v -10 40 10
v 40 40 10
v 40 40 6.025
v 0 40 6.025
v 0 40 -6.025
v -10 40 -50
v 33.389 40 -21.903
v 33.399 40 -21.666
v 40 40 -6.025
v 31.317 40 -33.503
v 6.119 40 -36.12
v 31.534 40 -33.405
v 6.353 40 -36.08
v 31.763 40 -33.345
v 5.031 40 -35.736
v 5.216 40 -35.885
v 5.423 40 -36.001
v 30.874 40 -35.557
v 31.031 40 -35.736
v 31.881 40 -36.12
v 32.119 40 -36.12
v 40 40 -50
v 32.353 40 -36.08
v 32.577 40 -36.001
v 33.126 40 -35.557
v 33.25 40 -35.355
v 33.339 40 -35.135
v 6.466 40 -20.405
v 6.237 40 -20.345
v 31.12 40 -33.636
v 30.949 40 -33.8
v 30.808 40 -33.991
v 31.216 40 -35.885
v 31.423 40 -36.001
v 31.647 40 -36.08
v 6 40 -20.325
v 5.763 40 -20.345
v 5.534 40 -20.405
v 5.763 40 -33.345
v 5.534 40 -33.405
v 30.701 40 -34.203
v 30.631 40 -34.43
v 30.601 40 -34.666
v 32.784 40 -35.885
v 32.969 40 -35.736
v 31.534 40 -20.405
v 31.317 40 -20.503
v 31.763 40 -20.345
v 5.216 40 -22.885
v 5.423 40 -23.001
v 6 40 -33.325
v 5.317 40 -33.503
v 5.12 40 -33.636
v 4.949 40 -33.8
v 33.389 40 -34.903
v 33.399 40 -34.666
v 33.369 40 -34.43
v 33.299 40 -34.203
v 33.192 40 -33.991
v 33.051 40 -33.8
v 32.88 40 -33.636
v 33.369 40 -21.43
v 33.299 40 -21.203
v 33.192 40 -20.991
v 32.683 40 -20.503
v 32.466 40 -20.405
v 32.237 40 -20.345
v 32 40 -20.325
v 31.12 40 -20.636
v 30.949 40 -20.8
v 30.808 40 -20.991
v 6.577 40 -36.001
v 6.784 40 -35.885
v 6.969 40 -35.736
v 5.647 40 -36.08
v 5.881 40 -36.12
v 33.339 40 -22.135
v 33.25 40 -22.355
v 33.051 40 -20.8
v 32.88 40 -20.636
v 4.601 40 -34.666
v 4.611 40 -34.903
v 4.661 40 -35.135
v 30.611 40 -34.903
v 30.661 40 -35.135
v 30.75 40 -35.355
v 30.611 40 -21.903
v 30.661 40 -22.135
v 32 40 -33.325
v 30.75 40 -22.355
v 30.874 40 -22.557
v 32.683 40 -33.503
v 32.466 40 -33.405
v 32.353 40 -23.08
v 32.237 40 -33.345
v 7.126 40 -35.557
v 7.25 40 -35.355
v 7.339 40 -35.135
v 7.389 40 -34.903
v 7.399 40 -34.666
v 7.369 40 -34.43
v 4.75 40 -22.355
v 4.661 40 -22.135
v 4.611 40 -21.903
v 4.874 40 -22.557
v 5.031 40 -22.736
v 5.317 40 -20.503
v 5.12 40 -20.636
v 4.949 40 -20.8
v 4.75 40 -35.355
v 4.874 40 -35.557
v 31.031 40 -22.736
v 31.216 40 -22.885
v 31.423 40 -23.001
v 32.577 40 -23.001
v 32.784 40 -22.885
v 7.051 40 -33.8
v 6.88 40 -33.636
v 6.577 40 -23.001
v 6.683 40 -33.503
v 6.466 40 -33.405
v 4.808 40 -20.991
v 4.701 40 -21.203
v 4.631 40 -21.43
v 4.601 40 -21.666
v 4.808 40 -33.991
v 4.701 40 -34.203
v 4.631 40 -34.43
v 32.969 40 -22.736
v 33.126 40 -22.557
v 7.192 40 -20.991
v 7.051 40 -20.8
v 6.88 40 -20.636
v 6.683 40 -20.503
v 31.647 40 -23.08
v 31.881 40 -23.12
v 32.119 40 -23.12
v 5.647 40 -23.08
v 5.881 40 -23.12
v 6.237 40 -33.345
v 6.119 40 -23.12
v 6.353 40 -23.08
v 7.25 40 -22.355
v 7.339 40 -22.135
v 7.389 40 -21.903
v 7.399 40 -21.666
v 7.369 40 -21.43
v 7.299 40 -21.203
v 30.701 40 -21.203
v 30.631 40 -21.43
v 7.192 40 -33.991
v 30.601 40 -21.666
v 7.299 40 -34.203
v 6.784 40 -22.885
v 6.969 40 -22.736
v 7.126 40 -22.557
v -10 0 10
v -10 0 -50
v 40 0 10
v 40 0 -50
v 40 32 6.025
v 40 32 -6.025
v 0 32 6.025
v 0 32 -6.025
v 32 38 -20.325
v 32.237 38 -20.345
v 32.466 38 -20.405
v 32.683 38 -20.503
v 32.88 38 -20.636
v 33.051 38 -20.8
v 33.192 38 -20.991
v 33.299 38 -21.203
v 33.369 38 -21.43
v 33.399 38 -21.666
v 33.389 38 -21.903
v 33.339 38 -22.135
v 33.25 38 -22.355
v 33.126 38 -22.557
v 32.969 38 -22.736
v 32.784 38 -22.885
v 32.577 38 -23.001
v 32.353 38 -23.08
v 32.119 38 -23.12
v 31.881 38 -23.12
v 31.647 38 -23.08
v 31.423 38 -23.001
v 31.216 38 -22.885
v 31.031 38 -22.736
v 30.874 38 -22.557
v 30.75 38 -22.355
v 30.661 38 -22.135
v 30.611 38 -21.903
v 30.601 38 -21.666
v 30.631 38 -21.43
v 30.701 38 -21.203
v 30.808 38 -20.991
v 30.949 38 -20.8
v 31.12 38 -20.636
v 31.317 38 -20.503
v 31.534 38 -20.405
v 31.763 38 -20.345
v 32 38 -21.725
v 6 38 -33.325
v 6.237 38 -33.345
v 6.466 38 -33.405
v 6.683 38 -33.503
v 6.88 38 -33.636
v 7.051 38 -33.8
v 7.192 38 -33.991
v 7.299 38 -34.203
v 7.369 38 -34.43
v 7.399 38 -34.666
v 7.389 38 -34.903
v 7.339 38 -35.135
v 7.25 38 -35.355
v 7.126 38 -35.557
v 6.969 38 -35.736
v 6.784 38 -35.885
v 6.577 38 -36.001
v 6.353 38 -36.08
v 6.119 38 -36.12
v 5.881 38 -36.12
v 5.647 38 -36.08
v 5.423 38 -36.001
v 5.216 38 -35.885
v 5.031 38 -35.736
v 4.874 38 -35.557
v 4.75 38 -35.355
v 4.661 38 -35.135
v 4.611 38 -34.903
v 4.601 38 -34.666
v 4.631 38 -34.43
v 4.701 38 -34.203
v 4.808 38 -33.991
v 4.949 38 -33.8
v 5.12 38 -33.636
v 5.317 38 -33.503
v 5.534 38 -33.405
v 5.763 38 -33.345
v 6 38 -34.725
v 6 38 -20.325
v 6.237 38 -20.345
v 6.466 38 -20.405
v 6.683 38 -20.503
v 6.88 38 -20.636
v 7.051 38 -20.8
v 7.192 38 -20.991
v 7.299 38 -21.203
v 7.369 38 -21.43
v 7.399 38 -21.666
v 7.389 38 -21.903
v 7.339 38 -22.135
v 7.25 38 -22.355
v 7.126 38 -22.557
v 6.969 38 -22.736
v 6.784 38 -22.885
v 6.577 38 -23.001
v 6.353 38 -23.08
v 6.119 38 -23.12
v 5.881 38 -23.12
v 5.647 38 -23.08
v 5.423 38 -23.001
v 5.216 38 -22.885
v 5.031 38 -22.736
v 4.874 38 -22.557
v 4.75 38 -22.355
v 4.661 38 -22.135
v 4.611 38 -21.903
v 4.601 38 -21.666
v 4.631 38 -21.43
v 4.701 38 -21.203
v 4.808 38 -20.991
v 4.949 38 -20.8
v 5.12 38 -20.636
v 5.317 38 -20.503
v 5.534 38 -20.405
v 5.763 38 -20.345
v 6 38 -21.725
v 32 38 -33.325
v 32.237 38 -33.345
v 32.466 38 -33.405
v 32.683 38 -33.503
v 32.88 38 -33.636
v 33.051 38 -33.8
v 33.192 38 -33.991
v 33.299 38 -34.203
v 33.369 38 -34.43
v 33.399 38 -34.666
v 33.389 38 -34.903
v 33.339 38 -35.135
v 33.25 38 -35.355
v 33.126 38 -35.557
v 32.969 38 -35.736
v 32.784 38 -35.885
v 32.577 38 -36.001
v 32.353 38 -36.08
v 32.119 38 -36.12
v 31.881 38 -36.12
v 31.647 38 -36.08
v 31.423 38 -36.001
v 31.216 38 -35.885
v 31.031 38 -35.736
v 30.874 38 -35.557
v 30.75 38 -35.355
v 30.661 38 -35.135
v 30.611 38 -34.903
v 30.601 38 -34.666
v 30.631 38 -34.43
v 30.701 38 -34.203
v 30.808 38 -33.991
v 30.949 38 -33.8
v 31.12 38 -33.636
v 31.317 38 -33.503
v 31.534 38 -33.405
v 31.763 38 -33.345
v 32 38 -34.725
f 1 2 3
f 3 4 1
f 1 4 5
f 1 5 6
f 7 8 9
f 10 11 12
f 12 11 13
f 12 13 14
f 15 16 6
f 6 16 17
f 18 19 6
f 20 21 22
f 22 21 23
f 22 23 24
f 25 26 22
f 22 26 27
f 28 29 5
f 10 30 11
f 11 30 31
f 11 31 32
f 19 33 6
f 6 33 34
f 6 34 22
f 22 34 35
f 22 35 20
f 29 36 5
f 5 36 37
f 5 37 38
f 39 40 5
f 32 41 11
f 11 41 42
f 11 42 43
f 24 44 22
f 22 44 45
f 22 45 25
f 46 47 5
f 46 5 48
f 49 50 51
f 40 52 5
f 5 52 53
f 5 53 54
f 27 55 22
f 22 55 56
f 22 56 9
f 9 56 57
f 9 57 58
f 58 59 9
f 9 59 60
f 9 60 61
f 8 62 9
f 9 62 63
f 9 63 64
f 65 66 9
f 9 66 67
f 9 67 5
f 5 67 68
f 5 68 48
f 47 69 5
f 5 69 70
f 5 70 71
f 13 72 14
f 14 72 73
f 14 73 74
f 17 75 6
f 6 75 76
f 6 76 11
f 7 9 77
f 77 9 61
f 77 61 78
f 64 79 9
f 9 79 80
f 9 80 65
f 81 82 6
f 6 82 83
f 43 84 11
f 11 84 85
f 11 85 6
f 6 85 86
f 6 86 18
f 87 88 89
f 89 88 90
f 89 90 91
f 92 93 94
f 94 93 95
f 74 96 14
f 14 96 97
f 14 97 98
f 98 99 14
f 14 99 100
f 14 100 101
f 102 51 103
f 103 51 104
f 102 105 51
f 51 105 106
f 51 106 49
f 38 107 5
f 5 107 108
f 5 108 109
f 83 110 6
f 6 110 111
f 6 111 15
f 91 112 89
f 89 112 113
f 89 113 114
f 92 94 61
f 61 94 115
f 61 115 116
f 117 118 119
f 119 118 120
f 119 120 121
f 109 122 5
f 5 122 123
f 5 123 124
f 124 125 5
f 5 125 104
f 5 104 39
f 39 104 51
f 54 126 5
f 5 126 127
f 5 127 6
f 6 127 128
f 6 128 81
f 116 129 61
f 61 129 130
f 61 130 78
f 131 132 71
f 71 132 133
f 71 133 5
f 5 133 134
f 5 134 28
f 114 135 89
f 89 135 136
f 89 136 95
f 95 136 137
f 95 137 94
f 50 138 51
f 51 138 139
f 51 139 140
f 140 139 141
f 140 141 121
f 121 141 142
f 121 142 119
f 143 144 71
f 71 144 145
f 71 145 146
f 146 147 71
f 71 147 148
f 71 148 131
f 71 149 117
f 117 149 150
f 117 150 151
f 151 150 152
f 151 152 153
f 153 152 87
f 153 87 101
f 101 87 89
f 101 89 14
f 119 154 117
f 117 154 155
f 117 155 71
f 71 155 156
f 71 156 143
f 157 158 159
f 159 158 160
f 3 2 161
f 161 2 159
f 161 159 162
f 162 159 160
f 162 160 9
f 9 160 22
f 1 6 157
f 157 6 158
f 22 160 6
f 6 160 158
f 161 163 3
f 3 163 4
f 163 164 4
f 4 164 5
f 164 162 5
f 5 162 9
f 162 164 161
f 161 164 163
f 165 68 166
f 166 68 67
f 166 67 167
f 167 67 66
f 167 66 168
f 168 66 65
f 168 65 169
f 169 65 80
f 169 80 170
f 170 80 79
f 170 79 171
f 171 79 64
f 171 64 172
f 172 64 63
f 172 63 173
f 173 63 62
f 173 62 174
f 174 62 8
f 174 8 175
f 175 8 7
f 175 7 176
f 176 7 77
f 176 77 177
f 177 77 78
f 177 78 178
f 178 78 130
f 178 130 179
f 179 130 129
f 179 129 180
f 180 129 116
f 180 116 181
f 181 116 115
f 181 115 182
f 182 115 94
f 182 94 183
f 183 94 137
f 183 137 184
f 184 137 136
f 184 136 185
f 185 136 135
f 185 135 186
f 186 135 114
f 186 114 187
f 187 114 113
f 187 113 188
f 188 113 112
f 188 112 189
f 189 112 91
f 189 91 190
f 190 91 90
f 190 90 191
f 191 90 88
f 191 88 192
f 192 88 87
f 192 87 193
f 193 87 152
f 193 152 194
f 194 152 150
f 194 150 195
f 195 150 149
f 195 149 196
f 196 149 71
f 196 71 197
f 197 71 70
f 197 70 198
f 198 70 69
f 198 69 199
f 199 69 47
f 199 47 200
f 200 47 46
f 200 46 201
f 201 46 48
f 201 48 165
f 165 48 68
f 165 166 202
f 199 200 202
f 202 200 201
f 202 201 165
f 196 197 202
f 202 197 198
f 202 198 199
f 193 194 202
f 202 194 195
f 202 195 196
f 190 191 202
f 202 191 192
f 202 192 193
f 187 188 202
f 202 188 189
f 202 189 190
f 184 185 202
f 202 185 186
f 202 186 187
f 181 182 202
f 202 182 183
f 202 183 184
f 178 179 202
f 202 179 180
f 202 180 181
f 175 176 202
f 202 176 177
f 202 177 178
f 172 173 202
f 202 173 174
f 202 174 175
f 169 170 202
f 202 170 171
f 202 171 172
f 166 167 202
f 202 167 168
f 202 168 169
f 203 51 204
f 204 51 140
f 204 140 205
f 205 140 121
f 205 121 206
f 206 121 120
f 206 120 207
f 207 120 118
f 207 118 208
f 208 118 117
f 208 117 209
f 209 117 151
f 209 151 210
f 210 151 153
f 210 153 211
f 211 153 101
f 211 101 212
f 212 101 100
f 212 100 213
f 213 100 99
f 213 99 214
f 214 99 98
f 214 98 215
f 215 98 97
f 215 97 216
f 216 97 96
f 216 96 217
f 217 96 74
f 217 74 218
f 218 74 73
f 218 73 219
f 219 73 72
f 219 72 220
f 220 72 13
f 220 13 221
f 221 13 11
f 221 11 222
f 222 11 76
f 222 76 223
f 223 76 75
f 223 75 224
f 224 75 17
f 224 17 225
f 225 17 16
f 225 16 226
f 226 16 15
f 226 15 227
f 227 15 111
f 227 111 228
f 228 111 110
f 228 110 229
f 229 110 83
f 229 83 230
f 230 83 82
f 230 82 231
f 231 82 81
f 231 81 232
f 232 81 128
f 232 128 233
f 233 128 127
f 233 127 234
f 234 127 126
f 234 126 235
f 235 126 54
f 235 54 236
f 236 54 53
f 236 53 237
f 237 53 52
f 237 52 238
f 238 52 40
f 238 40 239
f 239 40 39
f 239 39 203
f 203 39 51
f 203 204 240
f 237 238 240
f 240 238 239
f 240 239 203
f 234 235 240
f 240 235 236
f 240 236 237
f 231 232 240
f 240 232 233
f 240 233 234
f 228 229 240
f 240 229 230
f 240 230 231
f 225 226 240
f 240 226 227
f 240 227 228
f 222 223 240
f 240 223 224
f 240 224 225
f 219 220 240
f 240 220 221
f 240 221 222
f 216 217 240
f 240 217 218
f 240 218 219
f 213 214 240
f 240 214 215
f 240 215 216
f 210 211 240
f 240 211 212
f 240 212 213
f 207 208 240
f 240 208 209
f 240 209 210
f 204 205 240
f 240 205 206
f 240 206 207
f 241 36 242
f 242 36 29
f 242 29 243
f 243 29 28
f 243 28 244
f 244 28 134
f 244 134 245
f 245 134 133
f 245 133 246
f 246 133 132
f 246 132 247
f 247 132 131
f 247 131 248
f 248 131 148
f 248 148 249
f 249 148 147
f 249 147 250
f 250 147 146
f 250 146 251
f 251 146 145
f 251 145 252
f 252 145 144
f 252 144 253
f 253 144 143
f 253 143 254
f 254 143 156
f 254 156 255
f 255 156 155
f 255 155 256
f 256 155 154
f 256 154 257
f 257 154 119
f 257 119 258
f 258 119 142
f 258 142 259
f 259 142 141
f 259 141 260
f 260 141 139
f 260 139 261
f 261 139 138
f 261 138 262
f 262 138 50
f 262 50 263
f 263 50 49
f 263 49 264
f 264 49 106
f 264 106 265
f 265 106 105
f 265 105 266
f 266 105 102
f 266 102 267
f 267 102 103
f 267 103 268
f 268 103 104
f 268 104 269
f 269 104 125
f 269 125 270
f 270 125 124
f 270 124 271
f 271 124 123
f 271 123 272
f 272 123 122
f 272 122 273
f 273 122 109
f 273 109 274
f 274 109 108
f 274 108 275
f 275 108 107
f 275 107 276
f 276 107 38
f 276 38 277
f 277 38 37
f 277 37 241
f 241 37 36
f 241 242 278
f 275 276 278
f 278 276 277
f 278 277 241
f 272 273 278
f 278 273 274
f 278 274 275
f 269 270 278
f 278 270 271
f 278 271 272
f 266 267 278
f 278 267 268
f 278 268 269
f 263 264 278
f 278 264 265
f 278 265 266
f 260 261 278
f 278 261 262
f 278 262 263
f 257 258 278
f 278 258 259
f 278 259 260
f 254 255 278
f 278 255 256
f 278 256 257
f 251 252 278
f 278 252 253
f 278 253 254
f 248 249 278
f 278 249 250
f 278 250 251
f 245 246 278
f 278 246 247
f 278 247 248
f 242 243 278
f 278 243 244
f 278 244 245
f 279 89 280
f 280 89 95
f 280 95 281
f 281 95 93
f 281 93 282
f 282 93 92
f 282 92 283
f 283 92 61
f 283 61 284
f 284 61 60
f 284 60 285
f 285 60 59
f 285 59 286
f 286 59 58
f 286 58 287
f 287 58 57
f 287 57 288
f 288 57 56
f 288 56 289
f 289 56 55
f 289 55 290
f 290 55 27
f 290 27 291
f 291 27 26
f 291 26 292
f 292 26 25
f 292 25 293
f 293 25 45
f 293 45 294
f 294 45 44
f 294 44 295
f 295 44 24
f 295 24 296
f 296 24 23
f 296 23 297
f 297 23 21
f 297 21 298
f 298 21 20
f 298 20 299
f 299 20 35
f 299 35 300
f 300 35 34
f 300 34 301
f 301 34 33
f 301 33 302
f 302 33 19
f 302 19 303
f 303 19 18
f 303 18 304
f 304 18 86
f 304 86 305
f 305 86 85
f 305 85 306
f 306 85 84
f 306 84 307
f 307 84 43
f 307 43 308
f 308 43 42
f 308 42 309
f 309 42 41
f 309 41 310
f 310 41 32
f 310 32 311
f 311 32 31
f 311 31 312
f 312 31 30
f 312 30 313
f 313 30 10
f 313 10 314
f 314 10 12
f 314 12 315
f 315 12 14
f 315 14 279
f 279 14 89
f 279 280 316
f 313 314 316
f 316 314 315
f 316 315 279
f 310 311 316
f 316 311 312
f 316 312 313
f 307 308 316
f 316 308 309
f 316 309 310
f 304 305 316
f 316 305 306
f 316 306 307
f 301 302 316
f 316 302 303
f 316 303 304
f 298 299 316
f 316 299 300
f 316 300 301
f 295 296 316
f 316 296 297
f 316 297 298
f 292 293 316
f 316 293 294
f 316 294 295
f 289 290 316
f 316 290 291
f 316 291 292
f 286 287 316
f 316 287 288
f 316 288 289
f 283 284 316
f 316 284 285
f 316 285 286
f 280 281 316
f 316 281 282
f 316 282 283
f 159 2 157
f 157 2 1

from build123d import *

# Parameters (mm, degrees)
SKETCH2_W           = 80
SKETCH2_H           = 100
BOSS_EXTRUDE1_DEPTH = 40
SKETCH3_W           = 40
SKETCH3_H           = 12.05
CUT_EXTRUDE1_DEPTH  = 8
SKETCH5_R           = 1.4
CUT_EXTRUDE2_DEPTH  = 2
SKETCH8_W           = 100
SKETCH8_H           = 40
CUT_EXTRUDE5_DEPTH  = 30
SKETCH9_W           = 50
SKETCH9_H           = 40
CUT_EXTRUDE6_DEPTH  = 40


with BuildPart() as part:
    # Sketch2 → Boss-Extrude1 (new body)
    with BuildSketch(Plane(origin=(0, 0, 0), x_dir=(1, 0, 0), z_dir=(0, 1, 0))):
        Rectangle(SKETCH2_W, SKETCH2_H)
    extrude(amount=BOSS_EXTRUDE1_DEPTH)

    # Sketch3 → Cut-Extrude1 (cut)
    with BuildSketch(Plane(origin=(0, 40, 0), x_dir=(1, 0, 0), z_dir=(0, 1, 0))):
        with Locations((20, 0)):
            Rectangle(SKETCH3_W, SKETCH3_H)
    extrude(amount=-CUT_EXTRUDE1_DEPTH, mode=Mode.SUBTRACT)

    # Sketch5 → Cut-Extrude2 (cut)
    with BuildSketch(Plane(origin=(0, 40, 0), x_dir=(1, 0, 0), z_dir=(0, 1, 0))):
        with Locations(Location((6, 21.725, 0), (0, 0, 270))):
            Circle(SKETCH5_R)
        with Locations(Location((32, 21.725, 0), (0, 0, 270))):
            Circle(SKETCH5_R)
        with Locations(Location((32, 34.725, 0), (0, 0, 270))):
            Circle(SKETCH5_R)
        with Locations(Location((6, 34.725, 0), (0, 0, 270))):
            Circle(SKETCH5_R)
    extrude(amount=-CUT_EXTRUDE2_DEPTH, mode=Mode.SUBTRACT)

    # Sketch8 → Cut-Extrude5 (cut)
    with BuildSketch(Plane.ZY.offset(40)):
        with Locations((0, 20)):
            Rectangle(SKETCH8_W, SKETCH8_H)
    extrude(amount=-CUT_EXTRUDE5_DEPTH, mode=Mode.SUBTRACT)

    # Sketch9 → Cut-Extrude6 (cut)
    with BuildSketch(Plane.XY.offset(50)):
        with Locations((15, 20)):
            Rectangle(SKETCH9_W, SKETCH9_H)
    extrude(amount=-CUT_EXTRUDE6_DEPTH, mode=Mode.SUBTRACT)


solid = part.part
